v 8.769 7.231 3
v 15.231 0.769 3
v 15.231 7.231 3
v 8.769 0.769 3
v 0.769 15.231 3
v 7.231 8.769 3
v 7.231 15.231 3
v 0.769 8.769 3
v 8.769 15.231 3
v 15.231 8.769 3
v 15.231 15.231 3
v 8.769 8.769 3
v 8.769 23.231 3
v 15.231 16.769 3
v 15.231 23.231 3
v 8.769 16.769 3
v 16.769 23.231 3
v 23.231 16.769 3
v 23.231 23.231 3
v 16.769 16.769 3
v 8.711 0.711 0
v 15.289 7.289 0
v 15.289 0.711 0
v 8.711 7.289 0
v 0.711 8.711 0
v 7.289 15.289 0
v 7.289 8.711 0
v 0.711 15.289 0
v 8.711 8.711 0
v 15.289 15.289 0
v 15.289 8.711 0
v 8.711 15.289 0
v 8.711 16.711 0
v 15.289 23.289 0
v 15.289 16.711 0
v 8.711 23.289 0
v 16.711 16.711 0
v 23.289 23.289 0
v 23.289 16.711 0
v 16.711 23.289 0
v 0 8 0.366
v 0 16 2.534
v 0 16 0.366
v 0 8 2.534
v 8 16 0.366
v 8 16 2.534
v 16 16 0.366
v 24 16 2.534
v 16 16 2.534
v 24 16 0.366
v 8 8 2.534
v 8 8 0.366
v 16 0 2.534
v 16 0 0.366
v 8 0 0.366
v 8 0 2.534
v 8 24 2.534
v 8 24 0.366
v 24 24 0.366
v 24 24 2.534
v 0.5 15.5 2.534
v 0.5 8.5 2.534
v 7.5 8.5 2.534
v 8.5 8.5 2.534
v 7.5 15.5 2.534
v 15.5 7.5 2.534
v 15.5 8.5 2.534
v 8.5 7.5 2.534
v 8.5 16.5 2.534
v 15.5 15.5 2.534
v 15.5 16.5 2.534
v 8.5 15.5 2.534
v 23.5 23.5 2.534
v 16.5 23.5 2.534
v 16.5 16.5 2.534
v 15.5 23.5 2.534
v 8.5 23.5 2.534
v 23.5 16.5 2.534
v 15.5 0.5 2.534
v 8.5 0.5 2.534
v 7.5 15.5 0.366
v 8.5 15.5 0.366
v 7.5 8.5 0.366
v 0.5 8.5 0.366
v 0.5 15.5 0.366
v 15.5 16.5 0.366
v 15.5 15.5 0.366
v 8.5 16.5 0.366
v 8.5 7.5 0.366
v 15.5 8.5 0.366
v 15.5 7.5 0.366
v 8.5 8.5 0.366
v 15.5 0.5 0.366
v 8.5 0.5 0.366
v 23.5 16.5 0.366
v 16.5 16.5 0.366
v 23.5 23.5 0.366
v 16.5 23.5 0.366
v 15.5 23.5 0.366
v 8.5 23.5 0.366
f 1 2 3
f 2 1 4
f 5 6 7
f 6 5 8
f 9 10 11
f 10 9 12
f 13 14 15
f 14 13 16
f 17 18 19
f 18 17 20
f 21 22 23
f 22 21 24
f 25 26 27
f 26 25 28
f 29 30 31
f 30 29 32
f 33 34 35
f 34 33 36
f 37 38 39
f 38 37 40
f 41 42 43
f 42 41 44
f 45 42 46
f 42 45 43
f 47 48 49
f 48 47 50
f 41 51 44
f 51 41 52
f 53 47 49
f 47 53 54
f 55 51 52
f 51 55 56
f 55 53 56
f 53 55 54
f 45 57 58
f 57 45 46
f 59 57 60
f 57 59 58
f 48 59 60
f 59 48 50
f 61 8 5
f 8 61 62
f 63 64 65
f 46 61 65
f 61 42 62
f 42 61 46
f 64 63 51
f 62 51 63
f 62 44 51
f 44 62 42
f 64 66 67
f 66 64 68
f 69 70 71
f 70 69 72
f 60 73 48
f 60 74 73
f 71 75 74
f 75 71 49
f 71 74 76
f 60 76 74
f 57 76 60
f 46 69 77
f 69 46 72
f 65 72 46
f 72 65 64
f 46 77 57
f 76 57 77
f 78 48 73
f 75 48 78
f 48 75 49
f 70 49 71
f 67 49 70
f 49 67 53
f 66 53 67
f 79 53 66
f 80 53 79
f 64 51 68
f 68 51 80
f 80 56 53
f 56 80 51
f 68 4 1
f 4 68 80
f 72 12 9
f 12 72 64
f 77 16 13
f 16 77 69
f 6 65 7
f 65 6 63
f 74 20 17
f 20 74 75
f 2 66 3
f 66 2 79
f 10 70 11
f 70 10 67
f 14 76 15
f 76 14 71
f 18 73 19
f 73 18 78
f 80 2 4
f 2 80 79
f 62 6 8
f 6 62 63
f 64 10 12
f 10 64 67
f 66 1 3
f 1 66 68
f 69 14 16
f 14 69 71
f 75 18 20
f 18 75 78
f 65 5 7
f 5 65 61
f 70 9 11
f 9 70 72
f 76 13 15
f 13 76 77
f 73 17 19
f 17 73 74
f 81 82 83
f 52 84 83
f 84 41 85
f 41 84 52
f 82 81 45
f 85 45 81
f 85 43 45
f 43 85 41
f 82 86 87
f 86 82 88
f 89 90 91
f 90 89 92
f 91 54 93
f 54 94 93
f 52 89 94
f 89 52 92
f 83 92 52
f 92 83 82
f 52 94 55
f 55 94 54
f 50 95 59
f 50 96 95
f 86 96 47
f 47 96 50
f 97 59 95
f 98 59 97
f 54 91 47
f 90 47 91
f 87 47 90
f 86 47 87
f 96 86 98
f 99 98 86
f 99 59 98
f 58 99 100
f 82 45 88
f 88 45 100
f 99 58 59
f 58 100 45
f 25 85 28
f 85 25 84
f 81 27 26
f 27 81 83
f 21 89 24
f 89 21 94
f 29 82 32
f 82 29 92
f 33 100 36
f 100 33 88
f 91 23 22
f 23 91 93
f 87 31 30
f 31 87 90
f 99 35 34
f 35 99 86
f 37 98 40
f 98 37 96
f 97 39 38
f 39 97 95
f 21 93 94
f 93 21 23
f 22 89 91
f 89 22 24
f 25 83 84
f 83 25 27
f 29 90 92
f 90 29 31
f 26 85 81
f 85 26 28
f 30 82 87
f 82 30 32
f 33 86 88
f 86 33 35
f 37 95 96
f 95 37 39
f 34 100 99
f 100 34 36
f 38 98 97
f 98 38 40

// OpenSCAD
// Pentomino F-shape (See: https://en.wikipedia.org/wiki/Pentomino)
// Dimensions

/*
unit = 8;      // mm, size of each square
thickness = 3; // mm

module f_pentomino() {
    // Each cube is placed with translate([x*unit, y*unit, 0])
    translate([0*unit, 1*unit, 0])
        cube([unit, unit, thickness]);
    translate([1*unit, 1*unit, 0])
        cube([unit, unit, thickness]);
    translate([1*unit, 0*unit, 0])
        cube([unit, unit, thickness]);
    translate([1*unit, 2*unit, 0])
        cube([unit, unit, thickness]);
    translate([2*unit, 2*unit, 0])
        cube([unit, unit, thickness]);
}

// Draw the F pentomino
f_pentomino();
*/

unit = 8;      // mm, size of square
thickness = 3; // mm

module f_pentomino() {
    translate([0*unit, 1*unit, 0])
        cube([unit, unit, thickness]);
    translate([1*unit, 1*unit, 0])
        cube([unit, unit, thickness]);
    translate([1*unit, 0*unit, 0])
        cube([unit, unit, thickness]);
    translate([1*unit, 2*unit, 0])
        cube([unit, unit, thickness]);
    translate([2*unit, 2*unit, 0])
        cube([unit, unit, thickness]);
}

// Parameters for the hexagon
hex_side = 1;      // mm, side length of hexagon
ridge_length = 60; // mm, prism length
ridge_above = -0.4; // mm, amount to protrude above pentomino
ridge_y = 1*unit + unit/2; // Centered along Y axis between 0 and 8mm-> center = 4mm

// Function to create a hexagon polygon
module hexagon(side=1) {
    // 6-sided polygon centered at [0,0]
    points = [ for(i=[0:5]) [ side*cos(60*i), side*sin(60*i) ] ];
    polygon(points);
}

// Place the hexagonal prism along X axis between the two squares
module ridge_hex_prism() {
    translate(
        [0, 30 + ridge_y, thickness - ridge_above] // start at X=0, center Y, just breaking the top surface
    )
    rotate([90, 0, 0])  // rotate so prism runs along X, and hex cross-section is ZY plane
    linear_extrude(height=ridge_length)
        hexagon(hex_side);
}

// Combine with the F pentomino
//f_pentomino();
//ridge_hex_prism();

difference() 
{
    f_pentomino();
    translate([0,0,0]) ridge_hex_prism();
    translate([unit,0,0]) ridge_hex_prism();
    translate([2*unit,0,0]) ridge_hex_prism();
    translate([3*unit,0,0]) ridge_hex_prism();
    translate([30,0,0]) rotate(90) ridge_hex_prism();
    translate([30,unit,0]) rotate(90) ridge_hex_prism();
    translate([30,2*unit,0]) rotate(90) ridge_hex_prism();
    translate([30,3*unit,0]) rotate(90) ridge_hex_prism();
    
    
    translate([0,0,-thickness-0.9]) ridge_hex_prism();
    translate([unit,0,-thickness-0.9]) ridge_hex_prism();
    translate([2*unit,0,-thickness-0.9]) ridge_hex_prism();
    translate([3*unit,0,-thickness-0.9]) ridge_hex_prism();
    translate([30,0,-thickness-0.9]) rotate(90) ridge_hex_prism();
    translate([30,unit,-thickness-0.9]) rotate(90) ridge_hex_prism();
    translate([30,2*unit,-thickness-0.9]) rotate(90) ridge_hex_prism();
    translate([30,3*unit,-thickness-0.9]) rotate(90) ridge_hex_prism();
}
